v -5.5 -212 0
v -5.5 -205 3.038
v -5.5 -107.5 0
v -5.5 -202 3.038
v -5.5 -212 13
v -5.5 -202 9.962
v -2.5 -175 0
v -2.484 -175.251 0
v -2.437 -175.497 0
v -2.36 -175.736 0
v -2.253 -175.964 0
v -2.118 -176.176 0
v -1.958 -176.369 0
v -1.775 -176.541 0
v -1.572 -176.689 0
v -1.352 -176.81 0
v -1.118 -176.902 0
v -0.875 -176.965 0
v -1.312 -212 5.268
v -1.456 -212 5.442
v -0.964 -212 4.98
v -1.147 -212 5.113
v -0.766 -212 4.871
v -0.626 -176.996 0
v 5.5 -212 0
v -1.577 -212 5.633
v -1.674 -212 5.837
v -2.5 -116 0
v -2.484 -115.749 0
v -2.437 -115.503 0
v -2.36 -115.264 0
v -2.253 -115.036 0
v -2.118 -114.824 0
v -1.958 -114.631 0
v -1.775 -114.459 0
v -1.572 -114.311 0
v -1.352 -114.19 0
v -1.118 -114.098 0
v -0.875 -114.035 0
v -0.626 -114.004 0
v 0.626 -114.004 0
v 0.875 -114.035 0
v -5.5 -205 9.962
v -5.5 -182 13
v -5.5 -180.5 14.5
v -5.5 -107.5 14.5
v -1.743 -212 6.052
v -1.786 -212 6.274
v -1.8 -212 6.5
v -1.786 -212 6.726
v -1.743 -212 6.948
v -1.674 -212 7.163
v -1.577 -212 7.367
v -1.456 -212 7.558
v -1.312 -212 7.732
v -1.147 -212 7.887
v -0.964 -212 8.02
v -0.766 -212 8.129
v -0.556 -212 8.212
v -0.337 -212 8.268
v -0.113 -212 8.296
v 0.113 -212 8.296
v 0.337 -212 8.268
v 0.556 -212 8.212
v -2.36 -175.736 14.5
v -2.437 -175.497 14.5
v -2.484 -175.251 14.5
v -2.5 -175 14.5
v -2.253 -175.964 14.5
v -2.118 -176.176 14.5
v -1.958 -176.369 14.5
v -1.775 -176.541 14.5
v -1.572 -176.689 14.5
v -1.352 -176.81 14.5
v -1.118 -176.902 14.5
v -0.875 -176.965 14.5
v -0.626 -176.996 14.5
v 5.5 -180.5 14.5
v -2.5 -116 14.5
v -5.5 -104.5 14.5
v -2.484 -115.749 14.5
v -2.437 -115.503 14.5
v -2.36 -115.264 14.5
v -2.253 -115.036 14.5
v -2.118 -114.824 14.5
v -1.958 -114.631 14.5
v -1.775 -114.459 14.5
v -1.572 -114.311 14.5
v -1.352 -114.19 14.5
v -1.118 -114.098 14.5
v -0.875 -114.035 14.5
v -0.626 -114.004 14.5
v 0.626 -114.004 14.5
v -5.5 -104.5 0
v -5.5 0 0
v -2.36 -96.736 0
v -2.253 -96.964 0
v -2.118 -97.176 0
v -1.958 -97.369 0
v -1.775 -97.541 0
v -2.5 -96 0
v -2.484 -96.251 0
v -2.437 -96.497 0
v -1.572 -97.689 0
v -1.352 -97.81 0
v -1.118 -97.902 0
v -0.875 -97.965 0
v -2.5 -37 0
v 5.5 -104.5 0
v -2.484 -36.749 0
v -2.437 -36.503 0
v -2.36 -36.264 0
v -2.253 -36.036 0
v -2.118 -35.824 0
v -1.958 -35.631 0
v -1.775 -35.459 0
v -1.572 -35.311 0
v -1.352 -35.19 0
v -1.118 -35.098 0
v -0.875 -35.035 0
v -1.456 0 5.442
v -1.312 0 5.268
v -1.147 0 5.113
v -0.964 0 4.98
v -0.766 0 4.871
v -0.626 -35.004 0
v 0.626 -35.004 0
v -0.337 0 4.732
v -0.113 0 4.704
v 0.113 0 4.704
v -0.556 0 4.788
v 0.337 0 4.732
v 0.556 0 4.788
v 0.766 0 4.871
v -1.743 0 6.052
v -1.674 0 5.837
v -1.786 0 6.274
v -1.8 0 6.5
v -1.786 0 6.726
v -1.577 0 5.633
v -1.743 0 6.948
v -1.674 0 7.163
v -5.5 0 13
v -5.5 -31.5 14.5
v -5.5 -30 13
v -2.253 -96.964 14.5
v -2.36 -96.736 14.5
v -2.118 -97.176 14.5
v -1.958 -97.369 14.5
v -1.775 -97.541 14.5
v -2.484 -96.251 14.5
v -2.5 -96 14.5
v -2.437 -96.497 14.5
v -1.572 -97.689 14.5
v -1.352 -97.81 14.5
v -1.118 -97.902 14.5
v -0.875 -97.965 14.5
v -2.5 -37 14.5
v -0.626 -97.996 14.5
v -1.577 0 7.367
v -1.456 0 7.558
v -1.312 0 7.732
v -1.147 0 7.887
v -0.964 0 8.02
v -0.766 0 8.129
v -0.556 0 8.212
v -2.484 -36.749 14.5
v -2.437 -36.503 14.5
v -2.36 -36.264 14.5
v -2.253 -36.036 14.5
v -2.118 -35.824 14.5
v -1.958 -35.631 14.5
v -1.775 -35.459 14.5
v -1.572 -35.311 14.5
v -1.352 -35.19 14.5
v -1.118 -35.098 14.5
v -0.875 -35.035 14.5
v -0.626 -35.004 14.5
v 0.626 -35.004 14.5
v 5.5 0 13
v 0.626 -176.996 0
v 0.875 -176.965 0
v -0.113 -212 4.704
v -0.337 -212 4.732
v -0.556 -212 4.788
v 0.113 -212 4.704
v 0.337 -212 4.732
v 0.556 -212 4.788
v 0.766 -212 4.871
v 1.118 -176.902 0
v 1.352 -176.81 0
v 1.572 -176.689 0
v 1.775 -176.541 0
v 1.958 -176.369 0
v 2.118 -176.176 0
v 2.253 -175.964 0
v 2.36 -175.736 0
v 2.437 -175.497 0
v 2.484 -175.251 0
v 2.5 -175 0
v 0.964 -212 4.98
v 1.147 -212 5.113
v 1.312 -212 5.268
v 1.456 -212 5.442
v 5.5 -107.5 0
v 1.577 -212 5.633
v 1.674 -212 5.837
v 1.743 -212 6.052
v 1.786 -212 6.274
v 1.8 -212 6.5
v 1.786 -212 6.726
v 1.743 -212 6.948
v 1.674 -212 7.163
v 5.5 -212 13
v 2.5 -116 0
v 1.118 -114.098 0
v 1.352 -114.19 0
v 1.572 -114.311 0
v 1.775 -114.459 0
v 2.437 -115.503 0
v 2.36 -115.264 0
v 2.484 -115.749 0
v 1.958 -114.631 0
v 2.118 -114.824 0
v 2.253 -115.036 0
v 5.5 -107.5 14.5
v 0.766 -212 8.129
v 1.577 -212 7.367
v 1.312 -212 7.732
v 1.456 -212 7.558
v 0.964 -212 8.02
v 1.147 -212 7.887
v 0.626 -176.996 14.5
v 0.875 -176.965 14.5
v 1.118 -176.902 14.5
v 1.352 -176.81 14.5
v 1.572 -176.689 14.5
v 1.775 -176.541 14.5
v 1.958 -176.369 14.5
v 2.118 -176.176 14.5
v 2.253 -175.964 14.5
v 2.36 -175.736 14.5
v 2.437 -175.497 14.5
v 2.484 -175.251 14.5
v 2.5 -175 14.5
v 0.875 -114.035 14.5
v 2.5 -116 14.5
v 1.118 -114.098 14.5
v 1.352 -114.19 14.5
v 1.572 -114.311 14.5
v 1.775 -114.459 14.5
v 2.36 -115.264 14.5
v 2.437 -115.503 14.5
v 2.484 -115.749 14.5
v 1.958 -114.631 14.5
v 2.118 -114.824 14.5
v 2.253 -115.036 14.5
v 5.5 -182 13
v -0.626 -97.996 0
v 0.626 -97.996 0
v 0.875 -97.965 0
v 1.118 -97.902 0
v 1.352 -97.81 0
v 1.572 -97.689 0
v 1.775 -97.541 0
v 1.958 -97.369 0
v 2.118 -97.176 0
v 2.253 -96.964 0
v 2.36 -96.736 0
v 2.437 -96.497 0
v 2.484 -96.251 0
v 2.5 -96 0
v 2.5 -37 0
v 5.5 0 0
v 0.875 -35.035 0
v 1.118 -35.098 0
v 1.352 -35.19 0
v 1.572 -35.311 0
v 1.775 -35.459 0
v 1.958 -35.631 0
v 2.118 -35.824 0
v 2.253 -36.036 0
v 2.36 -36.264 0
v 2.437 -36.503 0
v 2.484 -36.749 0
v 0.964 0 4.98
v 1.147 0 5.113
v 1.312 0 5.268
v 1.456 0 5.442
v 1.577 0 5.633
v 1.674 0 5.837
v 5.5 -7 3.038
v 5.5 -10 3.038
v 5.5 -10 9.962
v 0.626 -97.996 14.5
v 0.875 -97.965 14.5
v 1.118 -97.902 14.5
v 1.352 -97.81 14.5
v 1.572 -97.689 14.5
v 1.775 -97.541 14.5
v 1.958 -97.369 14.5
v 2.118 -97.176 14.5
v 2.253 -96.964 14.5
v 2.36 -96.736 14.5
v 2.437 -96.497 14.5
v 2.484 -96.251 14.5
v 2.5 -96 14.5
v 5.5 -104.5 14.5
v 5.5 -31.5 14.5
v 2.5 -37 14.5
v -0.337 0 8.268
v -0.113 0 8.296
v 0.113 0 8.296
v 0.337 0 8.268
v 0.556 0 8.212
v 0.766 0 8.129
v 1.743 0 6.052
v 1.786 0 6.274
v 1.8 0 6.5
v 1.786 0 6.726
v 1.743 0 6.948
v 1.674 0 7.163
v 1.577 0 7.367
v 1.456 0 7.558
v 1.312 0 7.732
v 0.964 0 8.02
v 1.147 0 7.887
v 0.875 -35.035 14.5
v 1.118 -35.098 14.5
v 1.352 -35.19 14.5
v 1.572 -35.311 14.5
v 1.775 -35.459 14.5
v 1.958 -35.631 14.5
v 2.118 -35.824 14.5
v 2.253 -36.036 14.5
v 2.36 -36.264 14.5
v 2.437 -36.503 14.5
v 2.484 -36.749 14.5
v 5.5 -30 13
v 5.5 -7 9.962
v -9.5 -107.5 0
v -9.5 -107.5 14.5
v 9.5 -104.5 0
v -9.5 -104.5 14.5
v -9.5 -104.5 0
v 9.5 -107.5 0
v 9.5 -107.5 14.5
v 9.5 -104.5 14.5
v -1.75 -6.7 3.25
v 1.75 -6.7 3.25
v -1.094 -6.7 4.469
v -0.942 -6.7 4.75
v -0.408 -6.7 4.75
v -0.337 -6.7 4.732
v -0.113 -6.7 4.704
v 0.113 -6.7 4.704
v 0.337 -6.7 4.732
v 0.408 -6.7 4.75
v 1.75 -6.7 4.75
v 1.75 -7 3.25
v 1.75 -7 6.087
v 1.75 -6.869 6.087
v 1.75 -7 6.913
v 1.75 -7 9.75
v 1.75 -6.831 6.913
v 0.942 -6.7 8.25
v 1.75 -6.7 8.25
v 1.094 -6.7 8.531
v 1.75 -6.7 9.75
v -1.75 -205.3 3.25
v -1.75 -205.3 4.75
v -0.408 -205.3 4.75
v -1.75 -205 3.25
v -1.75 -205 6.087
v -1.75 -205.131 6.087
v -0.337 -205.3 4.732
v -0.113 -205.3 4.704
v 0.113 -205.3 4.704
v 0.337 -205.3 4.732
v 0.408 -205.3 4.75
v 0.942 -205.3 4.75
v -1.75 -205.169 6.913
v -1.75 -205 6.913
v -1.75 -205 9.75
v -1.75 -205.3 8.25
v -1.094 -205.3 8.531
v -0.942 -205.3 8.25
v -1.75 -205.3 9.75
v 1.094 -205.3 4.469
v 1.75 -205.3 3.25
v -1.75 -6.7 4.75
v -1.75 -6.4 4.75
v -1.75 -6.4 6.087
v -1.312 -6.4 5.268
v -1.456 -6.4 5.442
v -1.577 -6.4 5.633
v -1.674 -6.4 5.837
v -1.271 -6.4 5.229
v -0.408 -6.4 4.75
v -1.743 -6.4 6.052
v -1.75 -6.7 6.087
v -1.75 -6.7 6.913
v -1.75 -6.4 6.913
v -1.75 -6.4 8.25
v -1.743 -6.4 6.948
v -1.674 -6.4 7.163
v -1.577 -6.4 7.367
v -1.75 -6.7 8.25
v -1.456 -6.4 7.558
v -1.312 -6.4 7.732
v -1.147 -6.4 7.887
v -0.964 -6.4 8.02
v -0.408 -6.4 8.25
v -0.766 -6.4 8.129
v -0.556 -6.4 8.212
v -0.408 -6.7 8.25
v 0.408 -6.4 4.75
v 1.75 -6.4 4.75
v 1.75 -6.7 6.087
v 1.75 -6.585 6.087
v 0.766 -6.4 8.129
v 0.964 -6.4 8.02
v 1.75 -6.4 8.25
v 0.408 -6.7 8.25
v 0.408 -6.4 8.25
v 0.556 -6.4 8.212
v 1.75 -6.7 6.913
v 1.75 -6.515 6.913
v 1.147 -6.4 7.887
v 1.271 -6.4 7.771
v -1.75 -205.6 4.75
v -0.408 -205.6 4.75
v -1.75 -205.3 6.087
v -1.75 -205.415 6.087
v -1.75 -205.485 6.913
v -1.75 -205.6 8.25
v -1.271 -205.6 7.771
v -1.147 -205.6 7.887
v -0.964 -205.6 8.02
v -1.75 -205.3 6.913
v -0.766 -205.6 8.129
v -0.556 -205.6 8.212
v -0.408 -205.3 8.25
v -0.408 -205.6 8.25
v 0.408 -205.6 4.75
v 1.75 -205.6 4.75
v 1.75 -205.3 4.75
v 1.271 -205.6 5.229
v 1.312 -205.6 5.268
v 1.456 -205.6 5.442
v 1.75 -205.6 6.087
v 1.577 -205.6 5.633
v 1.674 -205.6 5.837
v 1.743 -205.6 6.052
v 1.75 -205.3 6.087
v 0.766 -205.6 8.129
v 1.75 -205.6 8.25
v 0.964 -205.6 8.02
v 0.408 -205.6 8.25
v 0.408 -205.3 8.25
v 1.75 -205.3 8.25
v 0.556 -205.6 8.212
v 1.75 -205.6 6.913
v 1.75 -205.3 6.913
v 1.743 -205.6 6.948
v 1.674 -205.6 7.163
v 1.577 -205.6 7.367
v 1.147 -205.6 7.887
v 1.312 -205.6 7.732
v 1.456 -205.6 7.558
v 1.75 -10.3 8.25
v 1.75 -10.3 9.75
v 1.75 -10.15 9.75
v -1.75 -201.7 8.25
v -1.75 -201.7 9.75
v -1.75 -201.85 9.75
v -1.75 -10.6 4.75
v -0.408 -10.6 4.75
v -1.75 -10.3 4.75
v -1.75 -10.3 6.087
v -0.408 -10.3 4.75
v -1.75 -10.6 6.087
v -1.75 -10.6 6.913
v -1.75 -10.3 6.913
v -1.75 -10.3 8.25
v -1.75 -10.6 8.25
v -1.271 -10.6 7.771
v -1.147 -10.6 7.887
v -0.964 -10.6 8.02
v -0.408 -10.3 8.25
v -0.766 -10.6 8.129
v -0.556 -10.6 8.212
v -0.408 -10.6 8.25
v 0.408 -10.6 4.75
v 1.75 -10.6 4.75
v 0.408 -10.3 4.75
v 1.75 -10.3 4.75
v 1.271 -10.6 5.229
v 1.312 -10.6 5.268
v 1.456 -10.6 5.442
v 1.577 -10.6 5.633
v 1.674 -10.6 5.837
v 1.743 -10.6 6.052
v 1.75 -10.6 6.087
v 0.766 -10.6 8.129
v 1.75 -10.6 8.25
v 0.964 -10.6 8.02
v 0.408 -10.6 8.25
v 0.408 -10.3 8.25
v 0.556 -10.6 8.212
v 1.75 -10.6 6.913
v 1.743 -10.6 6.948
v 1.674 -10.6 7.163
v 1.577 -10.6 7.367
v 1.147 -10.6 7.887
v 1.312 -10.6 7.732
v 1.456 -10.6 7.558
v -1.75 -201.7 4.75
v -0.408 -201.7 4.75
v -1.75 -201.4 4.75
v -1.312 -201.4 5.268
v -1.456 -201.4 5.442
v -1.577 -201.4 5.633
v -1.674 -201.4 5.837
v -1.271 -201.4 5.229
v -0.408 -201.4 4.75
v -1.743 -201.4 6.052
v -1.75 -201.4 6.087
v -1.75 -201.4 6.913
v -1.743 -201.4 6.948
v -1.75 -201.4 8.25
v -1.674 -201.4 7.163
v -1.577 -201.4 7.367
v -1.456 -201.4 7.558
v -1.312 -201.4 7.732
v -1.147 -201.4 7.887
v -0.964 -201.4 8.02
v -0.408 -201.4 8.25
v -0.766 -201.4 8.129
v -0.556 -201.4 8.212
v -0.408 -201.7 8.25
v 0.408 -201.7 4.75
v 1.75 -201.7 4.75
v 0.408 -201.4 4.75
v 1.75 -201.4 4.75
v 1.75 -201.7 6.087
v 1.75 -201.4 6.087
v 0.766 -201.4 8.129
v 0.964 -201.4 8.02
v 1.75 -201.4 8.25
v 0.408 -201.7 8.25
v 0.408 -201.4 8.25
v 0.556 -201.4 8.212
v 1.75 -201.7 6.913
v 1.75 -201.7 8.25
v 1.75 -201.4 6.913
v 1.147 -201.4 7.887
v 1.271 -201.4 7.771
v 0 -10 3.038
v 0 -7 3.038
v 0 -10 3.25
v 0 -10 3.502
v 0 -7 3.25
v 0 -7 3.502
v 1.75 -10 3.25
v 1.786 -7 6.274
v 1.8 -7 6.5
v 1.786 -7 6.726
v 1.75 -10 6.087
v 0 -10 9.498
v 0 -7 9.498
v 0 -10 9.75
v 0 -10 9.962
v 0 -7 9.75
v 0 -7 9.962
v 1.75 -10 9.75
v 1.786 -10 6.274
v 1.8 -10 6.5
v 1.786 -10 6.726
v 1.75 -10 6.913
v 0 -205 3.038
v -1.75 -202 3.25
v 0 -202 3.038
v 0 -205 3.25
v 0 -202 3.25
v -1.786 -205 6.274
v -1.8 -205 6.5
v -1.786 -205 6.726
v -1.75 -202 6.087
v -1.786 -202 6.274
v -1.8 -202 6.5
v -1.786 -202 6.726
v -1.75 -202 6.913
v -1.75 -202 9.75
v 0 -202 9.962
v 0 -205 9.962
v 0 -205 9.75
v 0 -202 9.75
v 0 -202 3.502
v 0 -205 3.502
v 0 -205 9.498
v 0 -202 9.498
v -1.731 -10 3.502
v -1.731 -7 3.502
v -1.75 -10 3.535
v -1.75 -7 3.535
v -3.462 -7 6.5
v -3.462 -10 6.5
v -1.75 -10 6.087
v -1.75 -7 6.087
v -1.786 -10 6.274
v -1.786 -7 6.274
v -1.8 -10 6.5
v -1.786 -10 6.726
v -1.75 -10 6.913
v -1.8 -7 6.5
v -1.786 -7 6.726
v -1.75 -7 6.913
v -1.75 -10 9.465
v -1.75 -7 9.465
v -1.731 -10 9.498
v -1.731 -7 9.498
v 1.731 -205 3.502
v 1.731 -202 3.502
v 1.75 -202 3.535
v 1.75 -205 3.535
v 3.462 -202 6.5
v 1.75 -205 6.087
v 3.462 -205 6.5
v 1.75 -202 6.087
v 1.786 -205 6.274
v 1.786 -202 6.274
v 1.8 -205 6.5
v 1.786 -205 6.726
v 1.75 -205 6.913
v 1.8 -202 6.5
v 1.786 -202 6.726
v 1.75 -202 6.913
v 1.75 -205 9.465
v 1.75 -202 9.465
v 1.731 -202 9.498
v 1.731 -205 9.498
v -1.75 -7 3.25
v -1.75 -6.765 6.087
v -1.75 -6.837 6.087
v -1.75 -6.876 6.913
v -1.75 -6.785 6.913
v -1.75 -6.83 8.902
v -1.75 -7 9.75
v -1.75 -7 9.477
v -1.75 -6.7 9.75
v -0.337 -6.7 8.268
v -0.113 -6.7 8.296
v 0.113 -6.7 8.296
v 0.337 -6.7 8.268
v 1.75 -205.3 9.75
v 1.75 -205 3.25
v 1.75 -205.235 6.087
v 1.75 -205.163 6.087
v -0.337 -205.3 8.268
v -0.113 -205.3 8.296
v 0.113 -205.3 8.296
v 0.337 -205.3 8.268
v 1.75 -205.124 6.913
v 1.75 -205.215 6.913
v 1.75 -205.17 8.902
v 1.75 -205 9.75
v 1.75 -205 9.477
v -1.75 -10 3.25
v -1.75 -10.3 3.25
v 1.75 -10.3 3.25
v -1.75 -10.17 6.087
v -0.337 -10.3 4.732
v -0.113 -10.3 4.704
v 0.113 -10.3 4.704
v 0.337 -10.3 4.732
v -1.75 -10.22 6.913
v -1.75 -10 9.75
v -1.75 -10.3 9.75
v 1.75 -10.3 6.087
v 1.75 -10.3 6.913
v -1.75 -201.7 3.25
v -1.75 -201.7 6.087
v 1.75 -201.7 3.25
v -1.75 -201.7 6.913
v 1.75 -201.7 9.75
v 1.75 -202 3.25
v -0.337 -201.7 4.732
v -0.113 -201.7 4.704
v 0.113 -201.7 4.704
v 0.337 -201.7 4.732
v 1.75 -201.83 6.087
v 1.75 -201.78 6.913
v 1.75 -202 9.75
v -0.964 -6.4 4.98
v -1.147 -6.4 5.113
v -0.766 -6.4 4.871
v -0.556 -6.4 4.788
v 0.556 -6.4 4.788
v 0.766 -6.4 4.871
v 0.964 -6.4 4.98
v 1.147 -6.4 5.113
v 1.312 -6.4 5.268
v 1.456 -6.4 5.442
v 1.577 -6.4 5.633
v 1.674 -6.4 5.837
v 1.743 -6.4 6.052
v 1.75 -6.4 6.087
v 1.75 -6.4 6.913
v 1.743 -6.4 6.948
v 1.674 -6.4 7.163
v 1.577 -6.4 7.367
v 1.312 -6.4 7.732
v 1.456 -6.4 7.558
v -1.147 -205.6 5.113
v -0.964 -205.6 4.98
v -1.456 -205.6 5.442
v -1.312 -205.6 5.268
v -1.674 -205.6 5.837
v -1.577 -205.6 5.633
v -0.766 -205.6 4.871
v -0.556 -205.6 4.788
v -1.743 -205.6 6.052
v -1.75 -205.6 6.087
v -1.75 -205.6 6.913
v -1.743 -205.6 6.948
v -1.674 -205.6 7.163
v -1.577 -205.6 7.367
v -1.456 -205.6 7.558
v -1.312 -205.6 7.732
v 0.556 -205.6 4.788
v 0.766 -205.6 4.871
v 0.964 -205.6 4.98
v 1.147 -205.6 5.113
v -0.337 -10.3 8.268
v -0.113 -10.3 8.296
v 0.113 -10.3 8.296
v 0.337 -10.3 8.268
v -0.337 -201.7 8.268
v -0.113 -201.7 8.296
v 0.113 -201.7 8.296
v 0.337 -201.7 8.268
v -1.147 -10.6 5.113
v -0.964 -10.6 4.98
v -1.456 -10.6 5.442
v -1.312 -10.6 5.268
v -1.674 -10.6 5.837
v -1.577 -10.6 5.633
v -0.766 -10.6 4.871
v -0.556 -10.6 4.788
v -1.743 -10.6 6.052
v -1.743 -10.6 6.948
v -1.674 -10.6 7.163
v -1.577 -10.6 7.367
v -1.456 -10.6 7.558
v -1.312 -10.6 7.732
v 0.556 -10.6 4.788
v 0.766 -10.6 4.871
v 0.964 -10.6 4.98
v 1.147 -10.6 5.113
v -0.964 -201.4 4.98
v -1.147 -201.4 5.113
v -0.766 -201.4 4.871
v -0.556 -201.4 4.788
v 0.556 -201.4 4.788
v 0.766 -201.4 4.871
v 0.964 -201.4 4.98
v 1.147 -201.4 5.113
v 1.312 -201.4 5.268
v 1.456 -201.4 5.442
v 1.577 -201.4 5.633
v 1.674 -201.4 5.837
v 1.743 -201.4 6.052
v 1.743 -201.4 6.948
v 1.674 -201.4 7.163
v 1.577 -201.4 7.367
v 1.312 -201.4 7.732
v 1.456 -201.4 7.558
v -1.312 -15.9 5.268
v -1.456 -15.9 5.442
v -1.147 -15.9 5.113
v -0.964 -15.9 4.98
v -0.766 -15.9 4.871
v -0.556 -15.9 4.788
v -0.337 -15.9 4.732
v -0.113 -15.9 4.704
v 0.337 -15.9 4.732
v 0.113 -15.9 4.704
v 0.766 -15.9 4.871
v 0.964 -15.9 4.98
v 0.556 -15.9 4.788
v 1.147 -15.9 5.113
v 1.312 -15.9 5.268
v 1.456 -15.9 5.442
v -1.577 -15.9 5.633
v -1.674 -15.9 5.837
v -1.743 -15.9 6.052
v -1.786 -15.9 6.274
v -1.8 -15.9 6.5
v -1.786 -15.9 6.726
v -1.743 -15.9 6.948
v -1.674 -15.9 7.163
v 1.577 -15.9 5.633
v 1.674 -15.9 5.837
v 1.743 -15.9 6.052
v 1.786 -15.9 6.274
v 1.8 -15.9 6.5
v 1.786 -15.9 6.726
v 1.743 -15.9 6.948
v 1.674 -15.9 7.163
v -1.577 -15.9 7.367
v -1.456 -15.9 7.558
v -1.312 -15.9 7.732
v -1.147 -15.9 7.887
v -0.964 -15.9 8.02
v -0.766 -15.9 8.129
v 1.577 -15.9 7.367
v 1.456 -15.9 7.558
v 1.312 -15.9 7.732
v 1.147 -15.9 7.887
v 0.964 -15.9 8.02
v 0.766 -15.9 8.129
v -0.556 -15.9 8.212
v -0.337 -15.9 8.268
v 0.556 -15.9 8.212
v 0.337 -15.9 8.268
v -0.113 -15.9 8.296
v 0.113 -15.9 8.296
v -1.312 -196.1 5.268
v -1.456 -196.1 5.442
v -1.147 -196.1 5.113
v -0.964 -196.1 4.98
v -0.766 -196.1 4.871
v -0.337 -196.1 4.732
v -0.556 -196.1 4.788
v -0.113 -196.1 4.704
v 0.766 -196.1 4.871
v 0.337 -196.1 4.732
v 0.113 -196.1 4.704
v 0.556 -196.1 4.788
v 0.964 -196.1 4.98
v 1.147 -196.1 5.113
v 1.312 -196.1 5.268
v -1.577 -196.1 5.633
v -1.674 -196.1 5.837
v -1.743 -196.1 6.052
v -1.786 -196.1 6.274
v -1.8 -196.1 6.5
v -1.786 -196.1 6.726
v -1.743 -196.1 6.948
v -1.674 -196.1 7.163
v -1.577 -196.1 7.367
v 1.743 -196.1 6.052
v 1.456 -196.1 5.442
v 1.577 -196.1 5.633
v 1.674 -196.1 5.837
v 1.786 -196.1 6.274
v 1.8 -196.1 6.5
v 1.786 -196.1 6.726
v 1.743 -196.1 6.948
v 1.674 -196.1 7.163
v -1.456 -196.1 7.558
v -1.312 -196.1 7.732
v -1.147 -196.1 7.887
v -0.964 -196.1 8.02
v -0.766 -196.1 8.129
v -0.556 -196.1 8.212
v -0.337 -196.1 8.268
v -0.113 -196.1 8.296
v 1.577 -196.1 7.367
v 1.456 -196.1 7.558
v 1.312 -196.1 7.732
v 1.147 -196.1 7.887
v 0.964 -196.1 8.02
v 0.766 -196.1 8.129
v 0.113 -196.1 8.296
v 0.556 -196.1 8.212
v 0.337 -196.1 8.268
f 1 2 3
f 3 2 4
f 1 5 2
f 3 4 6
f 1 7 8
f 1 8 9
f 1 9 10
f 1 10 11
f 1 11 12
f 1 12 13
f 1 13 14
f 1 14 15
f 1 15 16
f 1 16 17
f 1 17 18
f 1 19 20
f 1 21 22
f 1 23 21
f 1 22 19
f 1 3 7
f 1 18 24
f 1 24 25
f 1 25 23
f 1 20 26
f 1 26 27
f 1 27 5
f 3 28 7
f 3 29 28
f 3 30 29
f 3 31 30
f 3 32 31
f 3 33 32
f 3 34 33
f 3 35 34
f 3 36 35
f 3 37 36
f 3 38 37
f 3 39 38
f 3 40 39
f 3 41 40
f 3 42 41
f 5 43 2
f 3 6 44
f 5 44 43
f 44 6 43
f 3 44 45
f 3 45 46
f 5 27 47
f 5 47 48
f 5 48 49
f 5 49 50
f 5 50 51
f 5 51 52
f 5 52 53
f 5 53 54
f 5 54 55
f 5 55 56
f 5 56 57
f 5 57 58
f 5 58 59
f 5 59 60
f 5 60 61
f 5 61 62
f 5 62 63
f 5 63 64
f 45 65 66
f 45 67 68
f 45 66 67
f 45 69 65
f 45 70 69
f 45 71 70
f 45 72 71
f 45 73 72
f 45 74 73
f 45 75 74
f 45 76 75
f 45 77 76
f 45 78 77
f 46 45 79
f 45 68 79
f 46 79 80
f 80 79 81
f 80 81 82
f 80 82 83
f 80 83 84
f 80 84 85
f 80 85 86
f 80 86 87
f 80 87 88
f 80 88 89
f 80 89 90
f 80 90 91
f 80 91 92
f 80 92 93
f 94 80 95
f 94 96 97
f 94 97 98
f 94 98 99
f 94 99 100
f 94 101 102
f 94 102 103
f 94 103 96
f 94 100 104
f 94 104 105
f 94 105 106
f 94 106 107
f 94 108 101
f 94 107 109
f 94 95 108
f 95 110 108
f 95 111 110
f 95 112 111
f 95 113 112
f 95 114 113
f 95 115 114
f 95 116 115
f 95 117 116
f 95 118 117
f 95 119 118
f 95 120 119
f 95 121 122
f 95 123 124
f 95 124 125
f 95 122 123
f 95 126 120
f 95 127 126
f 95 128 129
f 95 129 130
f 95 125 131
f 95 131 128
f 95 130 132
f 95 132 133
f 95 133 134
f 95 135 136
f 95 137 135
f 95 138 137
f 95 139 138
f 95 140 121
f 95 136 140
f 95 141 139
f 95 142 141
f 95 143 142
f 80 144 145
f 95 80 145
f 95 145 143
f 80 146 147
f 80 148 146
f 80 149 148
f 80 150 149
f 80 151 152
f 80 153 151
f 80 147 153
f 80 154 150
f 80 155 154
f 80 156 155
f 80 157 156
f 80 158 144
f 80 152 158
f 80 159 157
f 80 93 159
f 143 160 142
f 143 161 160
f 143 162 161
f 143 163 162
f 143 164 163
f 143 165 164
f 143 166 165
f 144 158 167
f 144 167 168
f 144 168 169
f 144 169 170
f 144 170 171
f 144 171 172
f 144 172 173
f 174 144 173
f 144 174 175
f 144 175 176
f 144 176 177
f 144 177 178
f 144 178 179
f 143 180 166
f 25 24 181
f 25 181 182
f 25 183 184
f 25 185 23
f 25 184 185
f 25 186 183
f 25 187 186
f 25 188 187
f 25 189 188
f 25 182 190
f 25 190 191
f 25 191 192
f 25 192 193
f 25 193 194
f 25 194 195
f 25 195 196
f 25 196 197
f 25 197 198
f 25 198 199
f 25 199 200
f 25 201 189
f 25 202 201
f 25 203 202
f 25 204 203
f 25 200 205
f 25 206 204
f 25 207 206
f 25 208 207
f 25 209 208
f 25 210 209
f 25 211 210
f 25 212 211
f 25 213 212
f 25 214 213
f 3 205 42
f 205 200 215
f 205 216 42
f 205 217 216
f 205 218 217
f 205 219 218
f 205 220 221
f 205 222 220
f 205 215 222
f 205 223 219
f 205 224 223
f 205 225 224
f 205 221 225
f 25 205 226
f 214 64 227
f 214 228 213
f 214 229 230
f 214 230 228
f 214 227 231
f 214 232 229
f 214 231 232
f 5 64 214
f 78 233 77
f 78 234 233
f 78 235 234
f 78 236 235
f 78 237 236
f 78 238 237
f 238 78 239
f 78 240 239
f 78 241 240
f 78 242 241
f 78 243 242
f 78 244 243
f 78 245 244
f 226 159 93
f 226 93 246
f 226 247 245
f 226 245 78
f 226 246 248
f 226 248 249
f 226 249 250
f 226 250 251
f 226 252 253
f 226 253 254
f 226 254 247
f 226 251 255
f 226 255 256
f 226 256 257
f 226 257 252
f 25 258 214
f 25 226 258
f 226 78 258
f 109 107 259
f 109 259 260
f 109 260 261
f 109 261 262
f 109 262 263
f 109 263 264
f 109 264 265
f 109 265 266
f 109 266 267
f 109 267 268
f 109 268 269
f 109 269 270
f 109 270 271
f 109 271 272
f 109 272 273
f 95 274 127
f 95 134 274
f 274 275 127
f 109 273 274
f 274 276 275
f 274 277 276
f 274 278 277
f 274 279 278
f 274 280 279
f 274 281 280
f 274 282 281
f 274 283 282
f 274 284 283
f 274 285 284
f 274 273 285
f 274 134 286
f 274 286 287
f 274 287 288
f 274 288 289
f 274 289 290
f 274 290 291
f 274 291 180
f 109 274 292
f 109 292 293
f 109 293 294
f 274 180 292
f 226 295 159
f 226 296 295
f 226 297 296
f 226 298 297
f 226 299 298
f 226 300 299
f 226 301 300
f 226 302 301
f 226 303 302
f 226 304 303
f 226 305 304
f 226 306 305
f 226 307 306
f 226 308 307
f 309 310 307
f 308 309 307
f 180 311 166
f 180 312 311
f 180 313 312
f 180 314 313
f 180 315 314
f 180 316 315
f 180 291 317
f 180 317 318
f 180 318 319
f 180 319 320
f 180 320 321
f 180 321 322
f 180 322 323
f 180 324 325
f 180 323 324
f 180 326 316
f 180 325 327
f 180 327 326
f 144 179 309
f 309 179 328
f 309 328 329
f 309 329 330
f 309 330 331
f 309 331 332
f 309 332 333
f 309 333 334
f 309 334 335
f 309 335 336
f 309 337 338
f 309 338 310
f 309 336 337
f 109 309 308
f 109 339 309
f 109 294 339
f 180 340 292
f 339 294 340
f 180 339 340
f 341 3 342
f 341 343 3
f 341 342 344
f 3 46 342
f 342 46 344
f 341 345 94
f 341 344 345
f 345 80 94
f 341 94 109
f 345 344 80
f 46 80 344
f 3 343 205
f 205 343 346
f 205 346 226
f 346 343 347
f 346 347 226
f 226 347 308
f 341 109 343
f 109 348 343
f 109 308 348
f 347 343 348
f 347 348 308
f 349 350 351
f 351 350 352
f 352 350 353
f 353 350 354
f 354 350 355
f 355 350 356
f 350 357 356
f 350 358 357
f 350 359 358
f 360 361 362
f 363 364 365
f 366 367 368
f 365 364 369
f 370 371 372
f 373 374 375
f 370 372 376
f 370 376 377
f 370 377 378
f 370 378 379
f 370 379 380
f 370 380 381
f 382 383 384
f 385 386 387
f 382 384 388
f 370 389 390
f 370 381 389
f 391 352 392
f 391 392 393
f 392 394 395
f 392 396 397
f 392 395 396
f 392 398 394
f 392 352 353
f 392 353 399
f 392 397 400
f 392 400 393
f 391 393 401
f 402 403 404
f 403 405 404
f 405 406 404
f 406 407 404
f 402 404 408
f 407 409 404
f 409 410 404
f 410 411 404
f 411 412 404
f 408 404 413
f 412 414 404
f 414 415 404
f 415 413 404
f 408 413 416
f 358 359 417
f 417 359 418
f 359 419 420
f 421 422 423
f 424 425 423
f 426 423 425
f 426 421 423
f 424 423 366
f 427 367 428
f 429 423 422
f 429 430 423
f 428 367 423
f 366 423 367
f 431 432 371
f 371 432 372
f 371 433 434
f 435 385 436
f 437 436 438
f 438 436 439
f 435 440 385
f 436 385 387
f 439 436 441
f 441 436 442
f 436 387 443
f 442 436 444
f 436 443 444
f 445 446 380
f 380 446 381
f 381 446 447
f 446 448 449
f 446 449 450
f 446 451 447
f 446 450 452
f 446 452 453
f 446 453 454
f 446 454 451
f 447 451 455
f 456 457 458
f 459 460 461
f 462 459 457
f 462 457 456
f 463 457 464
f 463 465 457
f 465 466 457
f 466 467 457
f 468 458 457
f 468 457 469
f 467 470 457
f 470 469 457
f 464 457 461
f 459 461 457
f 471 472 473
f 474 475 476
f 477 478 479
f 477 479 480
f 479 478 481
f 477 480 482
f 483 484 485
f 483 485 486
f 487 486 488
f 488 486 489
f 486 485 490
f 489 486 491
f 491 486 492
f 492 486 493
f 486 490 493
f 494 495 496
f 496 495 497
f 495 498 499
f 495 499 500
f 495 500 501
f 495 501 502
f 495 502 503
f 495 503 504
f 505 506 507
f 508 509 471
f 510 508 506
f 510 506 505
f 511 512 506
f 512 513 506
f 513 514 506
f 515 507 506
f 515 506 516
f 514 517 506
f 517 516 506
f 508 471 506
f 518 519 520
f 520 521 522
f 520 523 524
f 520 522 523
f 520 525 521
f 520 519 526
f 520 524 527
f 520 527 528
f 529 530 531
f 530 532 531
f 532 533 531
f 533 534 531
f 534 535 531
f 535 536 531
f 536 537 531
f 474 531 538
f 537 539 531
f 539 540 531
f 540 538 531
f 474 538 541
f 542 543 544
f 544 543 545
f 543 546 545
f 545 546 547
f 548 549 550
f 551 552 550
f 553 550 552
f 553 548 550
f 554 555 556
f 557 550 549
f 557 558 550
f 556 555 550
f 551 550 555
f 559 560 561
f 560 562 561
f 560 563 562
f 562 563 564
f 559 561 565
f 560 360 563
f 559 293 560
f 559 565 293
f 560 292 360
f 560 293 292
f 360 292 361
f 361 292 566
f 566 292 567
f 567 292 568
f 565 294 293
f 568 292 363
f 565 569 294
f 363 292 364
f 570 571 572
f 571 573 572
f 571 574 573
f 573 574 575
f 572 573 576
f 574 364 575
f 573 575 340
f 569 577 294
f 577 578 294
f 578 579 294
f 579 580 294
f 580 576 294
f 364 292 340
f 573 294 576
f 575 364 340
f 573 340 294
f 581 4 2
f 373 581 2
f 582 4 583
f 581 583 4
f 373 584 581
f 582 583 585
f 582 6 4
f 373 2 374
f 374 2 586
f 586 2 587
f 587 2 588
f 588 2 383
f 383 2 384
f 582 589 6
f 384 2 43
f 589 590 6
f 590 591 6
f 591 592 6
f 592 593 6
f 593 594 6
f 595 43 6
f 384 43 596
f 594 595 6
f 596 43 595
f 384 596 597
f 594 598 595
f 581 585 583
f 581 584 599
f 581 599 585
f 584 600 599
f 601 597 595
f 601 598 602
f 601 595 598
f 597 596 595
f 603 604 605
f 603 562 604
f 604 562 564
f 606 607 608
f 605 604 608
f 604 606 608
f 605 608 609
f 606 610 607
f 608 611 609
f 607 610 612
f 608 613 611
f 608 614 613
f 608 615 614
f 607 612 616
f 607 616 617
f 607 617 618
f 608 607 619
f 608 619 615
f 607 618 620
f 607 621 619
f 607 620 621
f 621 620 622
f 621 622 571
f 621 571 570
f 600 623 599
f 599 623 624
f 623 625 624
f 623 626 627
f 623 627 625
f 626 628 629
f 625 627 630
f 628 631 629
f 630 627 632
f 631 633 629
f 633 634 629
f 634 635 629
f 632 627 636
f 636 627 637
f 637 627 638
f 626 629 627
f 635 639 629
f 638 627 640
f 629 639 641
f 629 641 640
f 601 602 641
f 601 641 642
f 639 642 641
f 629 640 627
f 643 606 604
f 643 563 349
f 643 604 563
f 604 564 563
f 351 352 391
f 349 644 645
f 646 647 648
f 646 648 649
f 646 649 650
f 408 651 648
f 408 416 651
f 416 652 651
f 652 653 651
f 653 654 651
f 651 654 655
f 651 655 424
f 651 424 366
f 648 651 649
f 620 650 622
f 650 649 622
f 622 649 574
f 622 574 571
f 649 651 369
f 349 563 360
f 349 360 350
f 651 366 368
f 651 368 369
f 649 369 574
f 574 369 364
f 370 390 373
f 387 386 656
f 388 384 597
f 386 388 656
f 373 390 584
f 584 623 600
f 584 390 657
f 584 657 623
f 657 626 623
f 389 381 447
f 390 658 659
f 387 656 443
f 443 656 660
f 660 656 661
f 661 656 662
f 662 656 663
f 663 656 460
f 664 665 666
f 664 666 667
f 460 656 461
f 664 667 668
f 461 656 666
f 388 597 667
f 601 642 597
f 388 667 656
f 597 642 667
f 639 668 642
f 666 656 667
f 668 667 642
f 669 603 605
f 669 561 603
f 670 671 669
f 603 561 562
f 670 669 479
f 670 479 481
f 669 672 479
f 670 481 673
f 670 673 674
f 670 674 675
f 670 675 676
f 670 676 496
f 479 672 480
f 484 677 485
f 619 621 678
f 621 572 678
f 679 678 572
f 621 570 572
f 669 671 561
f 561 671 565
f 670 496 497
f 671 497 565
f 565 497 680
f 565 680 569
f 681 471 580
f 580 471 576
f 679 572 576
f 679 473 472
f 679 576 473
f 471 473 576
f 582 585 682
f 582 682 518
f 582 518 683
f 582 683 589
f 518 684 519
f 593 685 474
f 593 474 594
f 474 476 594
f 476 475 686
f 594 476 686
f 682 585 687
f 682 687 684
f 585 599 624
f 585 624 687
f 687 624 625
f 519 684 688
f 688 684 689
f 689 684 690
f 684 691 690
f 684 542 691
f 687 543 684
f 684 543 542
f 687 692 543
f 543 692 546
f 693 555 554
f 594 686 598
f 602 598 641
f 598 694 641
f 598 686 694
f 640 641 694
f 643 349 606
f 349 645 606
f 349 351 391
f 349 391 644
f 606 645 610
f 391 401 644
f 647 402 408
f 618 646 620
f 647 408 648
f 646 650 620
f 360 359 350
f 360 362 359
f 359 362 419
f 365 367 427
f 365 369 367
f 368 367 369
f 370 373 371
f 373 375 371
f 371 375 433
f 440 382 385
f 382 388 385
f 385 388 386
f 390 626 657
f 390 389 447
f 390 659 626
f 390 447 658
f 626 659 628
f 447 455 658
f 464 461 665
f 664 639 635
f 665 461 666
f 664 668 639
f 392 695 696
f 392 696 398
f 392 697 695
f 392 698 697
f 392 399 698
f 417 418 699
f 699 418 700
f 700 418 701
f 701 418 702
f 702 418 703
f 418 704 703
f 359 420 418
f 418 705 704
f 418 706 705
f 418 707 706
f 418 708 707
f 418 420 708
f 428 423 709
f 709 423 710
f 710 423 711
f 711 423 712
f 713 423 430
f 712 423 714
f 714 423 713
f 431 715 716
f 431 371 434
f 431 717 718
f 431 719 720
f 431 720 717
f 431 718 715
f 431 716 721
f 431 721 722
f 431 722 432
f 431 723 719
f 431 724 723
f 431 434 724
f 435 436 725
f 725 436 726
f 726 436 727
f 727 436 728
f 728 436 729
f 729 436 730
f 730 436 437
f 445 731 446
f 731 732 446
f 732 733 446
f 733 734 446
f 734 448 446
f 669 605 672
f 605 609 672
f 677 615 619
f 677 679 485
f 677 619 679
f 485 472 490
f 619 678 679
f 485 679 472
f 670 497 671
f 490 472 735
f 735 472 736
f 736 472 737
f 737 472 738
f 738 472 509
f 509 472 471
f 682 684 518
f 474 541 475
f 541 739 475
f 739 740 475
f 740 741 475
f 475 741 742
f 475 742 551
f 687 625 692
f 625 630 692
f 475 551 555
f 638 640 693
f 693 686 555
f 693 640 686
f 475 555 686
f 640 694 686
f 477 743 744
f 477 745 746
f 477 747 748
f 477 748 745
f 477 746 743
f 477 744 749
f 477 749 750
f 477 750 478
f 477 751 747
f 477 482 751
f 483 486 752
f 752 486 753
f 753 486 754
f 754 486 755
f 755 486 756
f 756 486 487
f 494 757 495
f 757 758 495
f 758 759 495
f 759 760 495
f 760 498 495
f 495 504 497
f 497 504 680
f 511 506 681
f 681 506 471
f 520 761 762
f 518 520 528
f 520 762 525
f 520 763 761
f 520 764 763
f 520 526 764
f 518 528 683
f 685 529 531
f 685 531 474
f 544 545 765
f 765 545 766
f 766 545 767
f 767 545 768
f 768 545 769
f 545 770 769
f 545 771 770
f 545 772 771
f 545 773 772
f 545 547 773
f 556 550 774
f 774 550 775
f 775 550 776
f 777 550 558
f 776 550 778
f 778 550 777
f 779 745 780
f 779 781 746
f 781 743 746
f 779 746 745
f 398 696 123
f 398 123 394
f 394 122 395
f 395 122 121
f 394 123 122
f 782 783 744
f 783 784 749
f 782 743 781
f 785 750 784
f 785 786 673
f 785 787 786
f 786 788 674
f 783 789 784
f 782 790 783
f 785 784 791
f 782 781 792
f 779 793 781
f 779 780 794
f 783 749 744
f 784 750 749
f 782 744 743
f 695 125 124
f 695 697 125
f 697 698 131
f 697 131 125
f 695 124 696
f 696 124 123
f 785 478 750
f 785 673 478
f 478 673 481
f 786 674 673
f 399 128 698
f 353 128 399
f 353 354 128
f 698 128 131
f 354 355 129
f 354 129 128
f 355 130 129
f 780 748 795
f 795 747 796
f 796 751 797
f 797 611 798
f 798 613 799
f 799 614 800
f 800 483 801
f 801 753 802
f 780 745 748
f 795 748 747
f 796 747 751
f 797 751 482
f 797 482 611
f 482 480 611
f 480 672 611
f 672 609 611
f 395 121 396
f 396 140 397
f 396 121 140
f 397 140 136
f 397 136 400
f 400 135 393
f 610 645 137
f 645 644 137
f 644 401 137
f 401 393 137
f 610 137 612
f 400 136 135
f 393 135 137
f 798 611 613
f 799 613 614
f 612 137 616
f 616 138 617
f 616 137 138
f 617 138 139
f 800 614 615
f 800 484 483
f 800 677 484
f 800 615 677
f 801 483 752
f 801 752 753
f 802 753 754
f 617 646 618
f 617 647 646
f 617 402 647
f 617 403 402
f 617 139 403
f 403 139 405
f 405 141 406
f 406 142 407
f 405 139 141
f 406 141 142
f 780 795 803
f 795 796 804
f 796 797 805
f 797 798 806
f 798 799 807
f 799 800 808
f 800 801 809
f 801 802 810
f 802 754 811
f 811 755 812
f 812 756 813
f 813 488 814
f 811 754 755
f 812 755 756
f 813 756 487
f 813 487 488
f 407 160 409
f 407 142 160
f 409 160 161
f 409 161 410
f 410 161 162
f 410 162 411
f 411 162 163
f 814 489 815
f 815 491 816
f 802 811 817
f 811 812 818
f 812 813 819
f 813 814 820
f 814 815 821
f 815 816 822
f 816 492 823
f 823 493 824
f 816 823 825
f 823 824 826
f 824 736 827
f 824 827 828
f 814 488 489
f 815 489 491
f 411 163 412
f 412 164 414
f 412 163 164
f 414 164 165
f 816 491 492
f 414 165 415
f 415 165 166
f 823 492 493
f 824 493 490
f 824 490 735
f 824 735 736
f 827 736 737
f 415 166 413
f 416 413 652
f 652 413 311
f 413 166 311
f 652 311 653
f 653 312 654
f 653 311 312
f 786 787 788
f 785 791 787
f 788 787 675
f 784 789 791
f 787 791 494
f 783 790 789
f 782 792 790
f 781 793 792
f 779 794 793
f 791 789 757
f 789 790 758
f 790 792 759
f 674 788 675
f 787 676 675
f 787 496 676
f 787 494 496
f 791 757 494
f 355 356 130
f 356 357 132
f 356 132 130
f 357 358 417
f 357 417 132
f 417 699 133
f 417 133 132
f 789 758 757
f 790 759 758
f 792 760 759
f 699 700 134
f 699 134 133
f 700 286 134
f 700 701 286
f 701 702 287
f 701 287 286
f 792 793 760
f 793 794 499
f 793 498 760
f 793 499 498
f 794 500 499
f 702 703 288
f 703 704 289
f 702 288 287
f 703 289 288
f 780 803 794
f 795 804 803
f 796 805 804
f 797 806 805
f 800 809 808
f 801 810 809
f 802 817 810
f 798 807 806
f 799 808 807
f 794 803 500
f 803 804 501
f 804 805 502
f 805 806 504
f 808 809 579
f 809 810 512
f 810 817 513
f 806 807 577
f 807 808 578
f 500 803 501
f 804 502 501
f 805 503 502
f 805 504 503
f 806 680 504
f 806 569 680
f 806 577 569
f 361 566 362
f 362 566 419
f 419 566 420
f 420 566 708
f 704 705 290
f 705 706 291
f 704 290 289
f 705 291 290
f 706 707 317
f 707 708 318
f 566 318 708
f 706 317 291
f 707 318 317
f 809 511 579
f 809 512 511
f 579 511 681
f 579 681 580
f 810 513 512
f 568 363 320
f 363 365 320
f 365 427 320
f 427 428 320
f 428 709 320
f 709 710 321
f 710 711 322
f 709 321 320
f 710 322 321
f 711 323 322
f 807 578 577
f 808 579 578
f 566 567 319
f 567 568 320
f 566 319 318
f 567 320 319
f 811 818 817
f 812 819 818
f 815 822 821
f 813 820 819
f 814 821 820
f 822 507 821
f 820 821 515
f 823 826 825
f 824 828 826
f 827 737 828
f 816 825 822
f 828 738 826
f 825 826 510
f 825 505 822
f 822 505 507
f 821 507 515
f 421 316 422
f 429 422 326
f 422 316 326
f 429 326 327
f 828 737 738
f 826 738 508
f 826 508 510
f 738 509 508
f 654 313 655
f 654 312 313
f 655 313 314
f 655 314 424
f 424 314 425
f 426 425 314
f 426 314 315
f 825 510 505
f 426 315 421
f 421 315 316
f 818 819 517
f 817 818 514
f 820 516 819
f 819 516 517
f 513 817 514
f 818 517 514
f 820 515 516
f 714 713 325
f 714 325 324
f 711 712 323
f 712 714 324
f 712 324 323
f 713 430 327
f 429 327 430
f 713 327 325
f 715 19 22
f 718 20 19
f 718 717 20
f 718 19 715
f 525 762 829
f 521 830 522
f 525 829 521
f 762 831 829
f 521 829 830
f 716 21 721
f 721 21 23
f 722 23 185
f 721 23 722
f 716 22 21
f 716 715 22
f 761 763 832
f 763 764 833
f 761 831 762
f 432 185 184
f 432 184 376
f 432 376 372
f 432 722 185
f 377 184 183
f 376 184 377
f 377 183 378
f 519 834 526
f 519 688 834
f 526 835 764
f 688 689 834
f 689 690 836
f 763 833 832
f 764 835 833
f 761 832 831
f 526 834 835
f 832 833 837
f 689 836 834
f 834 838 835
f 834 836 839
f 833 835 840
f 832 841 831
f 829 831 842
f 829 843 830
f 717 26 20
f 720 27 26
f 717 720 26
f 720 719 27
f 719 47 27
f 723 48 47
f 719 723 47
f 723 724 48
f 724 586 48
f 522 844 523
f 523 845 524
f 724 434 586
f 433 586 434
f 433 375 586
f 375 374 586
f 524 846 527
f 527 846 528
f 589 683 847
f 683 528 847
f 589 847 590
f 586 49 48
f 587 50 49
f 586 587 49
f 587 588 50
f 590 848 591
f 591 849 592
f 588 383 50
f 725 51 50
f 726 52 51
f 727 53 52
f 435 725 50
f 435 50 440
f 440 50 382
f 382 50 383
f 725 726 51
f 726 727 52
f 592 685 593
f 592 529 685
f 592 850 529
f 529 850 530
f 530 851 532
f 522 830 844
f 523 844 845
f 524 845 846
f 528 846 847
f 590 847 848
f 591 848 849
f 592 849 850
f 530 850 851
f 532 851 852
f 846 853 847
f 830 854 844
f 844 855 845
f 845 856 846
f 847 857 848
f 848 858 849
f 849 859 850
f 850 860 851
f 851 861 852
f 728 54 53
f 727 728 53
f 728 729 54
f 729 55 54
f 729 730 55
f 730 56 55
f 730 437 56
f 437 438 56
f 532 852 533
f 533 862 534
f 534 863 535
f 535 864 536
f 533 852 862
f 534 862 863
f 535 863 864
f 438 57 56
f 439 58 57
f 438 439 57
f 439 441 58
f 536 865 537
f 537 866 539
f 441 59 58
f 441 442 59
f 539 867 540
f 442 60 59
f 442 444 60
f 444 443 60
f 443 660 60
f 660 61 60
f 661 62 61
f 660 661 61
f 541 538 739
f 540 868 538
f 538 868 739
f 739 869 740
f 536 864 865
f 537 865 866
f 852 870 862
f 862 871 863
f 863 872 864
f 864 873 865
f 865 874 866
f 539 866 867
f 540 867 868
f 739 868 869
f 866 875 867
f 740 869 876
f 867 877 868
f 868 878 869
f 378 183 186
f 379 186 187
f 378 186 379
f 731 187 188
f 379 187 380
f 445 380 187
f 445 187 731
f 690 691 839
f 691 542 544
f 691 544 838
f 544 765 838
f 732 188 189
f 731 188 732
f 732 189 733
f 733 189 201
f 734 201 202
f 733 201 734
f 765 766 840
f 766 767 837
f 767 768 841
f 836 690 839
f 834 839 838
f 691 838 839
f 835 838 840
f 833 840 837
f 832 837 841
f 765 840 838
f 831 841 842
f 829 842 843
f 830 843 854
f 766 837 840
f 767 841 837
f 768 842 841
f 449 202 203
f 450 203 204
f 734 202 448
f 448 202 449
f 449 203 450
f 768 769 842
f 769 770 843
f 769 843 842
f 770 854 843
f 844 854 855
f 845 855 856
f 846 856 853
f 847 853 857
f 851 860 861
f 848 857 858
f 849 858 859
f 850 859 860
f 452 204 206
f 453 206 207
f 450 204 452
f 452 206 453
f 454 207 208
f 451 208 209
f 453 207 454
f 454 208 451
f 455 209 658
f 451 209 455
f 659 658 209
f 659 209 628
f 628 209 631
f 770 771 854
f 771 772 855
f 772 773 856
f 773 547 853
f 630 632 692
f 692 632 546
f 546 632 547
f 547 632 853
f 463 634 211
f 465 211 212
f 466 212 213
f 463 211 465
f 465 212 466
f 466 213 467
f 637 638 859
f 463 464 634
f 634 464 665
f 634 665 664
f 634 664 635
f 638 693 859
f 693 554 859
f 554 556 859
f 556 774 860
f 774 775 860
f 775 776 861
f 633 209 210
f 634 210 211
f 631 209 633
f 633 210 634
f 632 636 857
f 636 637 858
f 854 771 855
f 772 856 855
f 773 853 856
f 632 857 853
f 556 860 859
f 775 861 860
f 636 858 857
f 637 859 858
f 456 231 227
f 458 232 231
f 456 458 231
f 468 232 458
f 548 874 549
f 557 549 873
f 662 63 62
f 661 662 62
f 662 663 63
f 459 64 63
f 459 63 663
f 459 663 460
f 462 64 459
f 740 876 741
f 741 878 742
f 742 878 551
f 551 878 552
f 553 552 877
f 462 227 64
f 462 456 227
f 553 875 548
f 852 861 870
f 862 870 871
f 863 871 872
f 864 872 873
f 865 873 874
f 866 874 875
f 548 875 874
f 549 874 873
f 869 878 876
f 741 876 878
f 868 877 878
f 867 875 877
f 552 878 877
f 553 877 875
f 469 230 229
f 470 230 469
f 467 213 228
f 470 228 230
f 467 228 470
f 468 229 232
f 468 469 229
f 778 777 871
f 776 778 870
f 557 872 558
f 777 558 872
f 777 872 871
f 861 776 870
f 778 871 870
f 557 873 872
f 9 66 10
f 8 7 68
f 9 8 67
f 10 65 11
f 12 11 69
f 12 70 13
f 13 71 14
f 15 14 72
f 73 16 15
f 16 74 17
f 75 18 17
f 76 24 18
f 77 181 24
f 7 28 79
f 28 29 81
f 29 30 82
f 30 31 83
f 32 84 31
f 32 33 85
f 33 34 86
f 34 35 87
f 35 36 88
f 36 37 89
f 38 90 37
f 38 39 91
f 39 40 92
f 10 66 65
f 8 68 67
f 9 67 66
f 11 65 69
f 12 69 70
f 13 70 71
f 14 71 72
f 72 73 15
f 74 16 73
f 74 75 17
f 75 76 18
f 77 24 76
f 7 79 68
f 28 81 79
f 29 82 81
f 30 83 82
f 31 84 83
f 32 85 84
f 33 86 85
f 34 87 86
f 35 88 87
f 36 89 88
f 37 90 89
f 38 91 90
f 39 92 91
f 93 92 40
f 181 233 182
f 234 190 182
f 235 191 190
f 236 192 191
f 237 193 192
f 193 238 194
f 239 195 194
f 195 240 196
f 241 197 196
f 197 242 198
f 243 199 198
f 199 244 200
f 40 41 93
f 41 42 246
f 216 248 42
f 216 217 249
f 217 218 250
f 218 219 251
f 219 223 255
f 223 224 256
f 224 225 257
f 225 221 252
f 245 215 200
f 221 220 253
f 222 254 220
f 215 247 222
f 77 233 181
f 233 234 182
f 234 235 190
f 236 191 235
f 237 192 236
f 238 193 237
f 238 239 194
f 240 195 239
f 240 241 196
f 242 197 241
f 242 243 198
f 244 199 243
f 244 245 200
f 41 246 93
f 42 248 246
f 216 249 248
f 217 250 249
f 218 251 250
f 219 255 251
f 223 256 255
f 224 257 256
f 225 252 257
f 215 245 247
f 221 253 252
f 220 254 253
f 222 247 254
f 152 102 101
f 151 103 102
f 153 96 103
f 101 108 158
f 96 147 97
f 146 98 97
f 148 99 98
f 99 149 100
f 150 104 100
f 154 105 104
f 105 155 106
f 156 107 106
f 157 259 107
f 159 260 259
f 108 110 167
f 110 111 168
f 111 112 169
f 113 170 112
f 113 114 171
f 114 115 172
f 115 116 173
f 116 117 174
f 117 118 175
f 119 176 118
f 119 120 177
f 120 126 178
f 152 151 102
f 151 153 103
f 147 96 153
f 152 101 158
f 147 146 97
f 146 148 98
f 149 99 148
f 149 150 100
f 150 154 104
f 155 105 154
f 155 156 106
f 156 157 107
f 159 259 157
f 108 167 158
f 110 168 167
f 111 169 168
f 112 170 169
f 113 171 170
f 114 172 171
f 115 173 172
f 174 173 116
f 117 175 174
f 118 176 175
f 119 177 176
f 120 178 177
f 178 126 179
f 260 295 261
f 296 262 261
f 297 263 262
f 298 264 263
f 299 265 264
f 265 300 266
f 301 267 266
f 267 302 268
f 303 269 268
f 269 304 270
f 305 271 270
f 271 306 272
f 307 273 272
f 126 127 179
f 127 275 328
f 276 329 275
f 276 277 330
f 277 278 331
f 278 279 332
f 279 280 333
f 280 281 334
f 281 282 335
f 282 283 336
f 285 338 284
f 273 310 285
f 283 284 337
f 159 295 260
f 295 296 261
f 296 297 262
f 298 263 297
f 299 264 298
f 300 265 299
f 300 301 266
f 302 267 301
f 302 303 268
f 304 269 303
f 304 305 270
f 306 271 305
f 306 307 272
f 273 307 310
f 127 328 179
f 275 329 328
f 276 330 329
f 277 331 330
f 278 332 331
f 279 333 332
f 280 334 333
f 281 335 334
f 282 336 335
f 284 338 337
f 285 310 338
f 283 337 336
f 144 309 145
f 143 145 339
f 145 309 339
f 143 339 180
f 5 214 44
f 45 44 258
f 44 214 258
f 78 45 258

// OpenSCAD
$fn = 50;

difference() {
	union() {
		translate(v = [0, 0, 0]) {
			rotate(a = [0, 0, 0]) {
				difference() {
					union() {
						translate(v = [-5.5, -212.0, 0]) {
							cube(size = [11.0, 212.0, 14.5]);
						}
						translate(v = [-9.5, -107.5, 0]) {
							cube(size = [19.0, 3.0, 14.5]);
						}
					}
					union() {
						translate(v = [0, 0, 0]) {
							rotate(a = [0, 0, 0]) {
								difference() {
									union() {
										translate(v = [0, -7.0, 6.5]) {
											rotate(a = [90, 0, 0]) {
												difference() {
													union() {
														translate(v = [-1.75, -3.25, -0.3]) {
															cube(size = [3.5, 6.5, 0.3]);
														}
														translate(v = [-1.75, -1.75, -0.6]) {
															cube(size = [3.5, 3.5, 0.3]);
														}
														translate(v = [-1.75, -3.25, 3]) {
															cube(size = [3.5, 6.5, 0.3]);
														}
														translate(v = [-1.75, -1.75, 3.3]) {
															cube(size = [3.5, 3.5, 0.3]);
														}
														translate(v = [0.0, -3.4619999999999997, 0]) {
															cube(size = [20, 6.9239999999999995, 3]);
														}
														linear_extrude(height = 3) {
															polygon(points = [[3.4619999999999997, 0.0], [1.7310000000000003, 2.9981799479017264], [-1.7309999999999992, 2.9981799479017264], [-3.4619999999999997, 4.2397272186481365e-16], [-1.7310000000000014, -2.998179947901726], [1.7309999999999977, -2.9981799479017277]]);
														}
														translate(v = [-1.75, -3.25, -0.3]) {
															cube(size = [3.5, 6.5, 0.3]);
														}
														translate(v = [-1.75, -1.75, -0.6]) {
															cube(size = [3.5, 3.5, 0.3]);
														}
														translate(v = [-1.75, -3.25, 3]) {
															cube(size = [3.5, 6.5, 0.3]);
														}
														translate(v = [-1.75, -1.75, 3.3]) {
															cube(size = [3.5, 3.5, 0.3]);
														}
														translate(v = [-1.75, -3.25, -0.3]) {
															cube(size = [3.5, 6.5, 0.3]);
														}
														translate(v = [-1.75, -1.75, -0.6]) {
															cube(size = [3.5, 3.5, 0.3]);
														}
														translate(v = [-1.75, -3.25, 3]) {
															cube(size = [3.5, 6.5, 0.3]);
														}
														translate(v = [-1.75, -1.75, 3.3]) {
															cube(size = [3.5, 3.5, 0.3]);
														}
													}
													union();
												}
											}
										}
										translate(v = [0, 0.1, 6.5]) {
											rotate(a = [90, 0, 0]) {
												cylinder(h = 16, r = 1.8);
											}
										}
									}
									union();
								}
							}
						}
						translate(v = [0, -212.0, 0]) {
							rotate(a = [0, 0, 180]) {
								difference() {
									union() {
										translate(v = [0, -7.0, 6.5]) {
											rotate(a = [90, 0, 0]) {
												difference() {
													union() {
														translate(v = [-1.75, -3.25, -0.3]) {
															cube(size = [3.5, 6.5, 0.3]);
														}
														translate(v = [-1.75, -1.75, -0.6]) {
															cube(size = [3.5, 3.5, 0.3]);
														}
														translate(v = [-1.75, -3.25, 3]) {
															cube(size = [3.5, 6.5, 0.3]);
														}
														translate(v = [-1.75, -1.75, 3.3]) {
															cube(size = [3.5, 3.5, 0.3]);
														}
														translate(v = [0.0, -3.4619999999999997, 0]) {
															cube(size = [20, 6.9239999999999995, 3]);
														}
														linear_extrude(height = 3) {
															polygon(points = [[3.4619999999999997, 0.0], [1.7310000000000003, 2.9981799479017264], [-1.7309999999999992, 2.9981799479017264], [-3.4619999999999997, 4.2397272186481365e-16], [-1.7310000000000014, -2.998179947901726], [1.7309999999999977, -2.9981799479017277]]);
														}
														translate(v = [-1.75, -3.25, -0.3]) {
															cube(size = [3.5, 6.5, 0.3]);
														}
														translate(v = [-1.75, -1.75, -0.6]) {
															cube(size = [3.5, 3.5, 0.3]);
														}
														translate(v = [-1.75, -3.25, 3]) {
															cube(size = [3.5, 6.5, 0.3]);
														}
														translate(v = [-1.75, -1.75, 3.3]) {
															cube(size = [3.5, 3.5, 0.3]);
														}
														translate(v = [-1.75, -3.25, -0.3]) {
															cube(size = [3.5, 6.5, 0.3]);
														}
														translate(v = [-1.75, -1.75, -0.6]) {
															cube(size = [3.5, 3.5, 0.3]);
														}
														translate(v = [-1.75, -3.25, 3]) {
															cube(size = [3.5, 6.5, 0.3]);
														}
														translate(v = [-1.75, -1.75, 3.3]) {
															cube(size = [3.5, 3.5, 0.3]);
														}
													}
													union();
												}
											}
										}
										translate(v = [0, 0.1, 6.5]) {
											rotate(a = [90, 0, 0]) {
												cylinder(h = 16, r = 1.8);
											}
										}
									}
									union();
								}
							}
						}
						translate(v = [-5.6, 0, 0]) {
							rotate(a = [90, 0, 90]) {
								linear_extrude(height = 11.2) {
									polygon(points = [[0.1, 13.0], [-30.0, 13.0], [-31.5, 14.5], [-31.5, 14.7], [0.1, 14.7]]);
								}
							}
						}
						translate(v = [-5.6, 0, 0]) {
							rotate(a = [90, 0, 90]) {
								linear_extrude(height = 11.2) {
									polygon(points = [[-212.1, 13.0], [-182.0, 13.0], [-180.5, 14.5], [-180.5, 14.7], [-212.1, 14.7]]);
								}
							}
						}
						translate(v = [0, -66.5, -0.1]) {
							hull() {
								translate(v = [-0.5, 29.5, 0]) {
									cylinder(h = 14.7, r = 2.0);
								}
								translate(v = [0.5, 29.5, 0]) {
									cylinder(h = 14.7, r = 2.0);
								}
								translate(v = [-0.5, -29.5, 0]) {
									cylinder(h = 14.7, r = 2.0);
								}
								translate(v = [0.5, -29.5, 0]) {
									cylinder(h = 14.7, r = 2.0);
								}
							}
						}
						translate(v = [0, -145.5, -0.1]) {
							hull() {
								translate(v = [-0.5, 29.5, 0]) {
									cylinder(h = 14.7, r = 2.0);
								}
								translate(v = [0.5, 29.5, 0]) {
									cylinder(h = 14.7, r = 2.0);
								}
								translate(v = [-0.5, -29.5, 0]) {
									cylinder(h = 14.7, r = 2.0);
								}
								translate(v = [0.5, -29.5, 0]) {
									cylinder(h = 14.7, r = 2.0);
								}
							}
						}
					}
				}
			}
		}
	}
	union();
}
